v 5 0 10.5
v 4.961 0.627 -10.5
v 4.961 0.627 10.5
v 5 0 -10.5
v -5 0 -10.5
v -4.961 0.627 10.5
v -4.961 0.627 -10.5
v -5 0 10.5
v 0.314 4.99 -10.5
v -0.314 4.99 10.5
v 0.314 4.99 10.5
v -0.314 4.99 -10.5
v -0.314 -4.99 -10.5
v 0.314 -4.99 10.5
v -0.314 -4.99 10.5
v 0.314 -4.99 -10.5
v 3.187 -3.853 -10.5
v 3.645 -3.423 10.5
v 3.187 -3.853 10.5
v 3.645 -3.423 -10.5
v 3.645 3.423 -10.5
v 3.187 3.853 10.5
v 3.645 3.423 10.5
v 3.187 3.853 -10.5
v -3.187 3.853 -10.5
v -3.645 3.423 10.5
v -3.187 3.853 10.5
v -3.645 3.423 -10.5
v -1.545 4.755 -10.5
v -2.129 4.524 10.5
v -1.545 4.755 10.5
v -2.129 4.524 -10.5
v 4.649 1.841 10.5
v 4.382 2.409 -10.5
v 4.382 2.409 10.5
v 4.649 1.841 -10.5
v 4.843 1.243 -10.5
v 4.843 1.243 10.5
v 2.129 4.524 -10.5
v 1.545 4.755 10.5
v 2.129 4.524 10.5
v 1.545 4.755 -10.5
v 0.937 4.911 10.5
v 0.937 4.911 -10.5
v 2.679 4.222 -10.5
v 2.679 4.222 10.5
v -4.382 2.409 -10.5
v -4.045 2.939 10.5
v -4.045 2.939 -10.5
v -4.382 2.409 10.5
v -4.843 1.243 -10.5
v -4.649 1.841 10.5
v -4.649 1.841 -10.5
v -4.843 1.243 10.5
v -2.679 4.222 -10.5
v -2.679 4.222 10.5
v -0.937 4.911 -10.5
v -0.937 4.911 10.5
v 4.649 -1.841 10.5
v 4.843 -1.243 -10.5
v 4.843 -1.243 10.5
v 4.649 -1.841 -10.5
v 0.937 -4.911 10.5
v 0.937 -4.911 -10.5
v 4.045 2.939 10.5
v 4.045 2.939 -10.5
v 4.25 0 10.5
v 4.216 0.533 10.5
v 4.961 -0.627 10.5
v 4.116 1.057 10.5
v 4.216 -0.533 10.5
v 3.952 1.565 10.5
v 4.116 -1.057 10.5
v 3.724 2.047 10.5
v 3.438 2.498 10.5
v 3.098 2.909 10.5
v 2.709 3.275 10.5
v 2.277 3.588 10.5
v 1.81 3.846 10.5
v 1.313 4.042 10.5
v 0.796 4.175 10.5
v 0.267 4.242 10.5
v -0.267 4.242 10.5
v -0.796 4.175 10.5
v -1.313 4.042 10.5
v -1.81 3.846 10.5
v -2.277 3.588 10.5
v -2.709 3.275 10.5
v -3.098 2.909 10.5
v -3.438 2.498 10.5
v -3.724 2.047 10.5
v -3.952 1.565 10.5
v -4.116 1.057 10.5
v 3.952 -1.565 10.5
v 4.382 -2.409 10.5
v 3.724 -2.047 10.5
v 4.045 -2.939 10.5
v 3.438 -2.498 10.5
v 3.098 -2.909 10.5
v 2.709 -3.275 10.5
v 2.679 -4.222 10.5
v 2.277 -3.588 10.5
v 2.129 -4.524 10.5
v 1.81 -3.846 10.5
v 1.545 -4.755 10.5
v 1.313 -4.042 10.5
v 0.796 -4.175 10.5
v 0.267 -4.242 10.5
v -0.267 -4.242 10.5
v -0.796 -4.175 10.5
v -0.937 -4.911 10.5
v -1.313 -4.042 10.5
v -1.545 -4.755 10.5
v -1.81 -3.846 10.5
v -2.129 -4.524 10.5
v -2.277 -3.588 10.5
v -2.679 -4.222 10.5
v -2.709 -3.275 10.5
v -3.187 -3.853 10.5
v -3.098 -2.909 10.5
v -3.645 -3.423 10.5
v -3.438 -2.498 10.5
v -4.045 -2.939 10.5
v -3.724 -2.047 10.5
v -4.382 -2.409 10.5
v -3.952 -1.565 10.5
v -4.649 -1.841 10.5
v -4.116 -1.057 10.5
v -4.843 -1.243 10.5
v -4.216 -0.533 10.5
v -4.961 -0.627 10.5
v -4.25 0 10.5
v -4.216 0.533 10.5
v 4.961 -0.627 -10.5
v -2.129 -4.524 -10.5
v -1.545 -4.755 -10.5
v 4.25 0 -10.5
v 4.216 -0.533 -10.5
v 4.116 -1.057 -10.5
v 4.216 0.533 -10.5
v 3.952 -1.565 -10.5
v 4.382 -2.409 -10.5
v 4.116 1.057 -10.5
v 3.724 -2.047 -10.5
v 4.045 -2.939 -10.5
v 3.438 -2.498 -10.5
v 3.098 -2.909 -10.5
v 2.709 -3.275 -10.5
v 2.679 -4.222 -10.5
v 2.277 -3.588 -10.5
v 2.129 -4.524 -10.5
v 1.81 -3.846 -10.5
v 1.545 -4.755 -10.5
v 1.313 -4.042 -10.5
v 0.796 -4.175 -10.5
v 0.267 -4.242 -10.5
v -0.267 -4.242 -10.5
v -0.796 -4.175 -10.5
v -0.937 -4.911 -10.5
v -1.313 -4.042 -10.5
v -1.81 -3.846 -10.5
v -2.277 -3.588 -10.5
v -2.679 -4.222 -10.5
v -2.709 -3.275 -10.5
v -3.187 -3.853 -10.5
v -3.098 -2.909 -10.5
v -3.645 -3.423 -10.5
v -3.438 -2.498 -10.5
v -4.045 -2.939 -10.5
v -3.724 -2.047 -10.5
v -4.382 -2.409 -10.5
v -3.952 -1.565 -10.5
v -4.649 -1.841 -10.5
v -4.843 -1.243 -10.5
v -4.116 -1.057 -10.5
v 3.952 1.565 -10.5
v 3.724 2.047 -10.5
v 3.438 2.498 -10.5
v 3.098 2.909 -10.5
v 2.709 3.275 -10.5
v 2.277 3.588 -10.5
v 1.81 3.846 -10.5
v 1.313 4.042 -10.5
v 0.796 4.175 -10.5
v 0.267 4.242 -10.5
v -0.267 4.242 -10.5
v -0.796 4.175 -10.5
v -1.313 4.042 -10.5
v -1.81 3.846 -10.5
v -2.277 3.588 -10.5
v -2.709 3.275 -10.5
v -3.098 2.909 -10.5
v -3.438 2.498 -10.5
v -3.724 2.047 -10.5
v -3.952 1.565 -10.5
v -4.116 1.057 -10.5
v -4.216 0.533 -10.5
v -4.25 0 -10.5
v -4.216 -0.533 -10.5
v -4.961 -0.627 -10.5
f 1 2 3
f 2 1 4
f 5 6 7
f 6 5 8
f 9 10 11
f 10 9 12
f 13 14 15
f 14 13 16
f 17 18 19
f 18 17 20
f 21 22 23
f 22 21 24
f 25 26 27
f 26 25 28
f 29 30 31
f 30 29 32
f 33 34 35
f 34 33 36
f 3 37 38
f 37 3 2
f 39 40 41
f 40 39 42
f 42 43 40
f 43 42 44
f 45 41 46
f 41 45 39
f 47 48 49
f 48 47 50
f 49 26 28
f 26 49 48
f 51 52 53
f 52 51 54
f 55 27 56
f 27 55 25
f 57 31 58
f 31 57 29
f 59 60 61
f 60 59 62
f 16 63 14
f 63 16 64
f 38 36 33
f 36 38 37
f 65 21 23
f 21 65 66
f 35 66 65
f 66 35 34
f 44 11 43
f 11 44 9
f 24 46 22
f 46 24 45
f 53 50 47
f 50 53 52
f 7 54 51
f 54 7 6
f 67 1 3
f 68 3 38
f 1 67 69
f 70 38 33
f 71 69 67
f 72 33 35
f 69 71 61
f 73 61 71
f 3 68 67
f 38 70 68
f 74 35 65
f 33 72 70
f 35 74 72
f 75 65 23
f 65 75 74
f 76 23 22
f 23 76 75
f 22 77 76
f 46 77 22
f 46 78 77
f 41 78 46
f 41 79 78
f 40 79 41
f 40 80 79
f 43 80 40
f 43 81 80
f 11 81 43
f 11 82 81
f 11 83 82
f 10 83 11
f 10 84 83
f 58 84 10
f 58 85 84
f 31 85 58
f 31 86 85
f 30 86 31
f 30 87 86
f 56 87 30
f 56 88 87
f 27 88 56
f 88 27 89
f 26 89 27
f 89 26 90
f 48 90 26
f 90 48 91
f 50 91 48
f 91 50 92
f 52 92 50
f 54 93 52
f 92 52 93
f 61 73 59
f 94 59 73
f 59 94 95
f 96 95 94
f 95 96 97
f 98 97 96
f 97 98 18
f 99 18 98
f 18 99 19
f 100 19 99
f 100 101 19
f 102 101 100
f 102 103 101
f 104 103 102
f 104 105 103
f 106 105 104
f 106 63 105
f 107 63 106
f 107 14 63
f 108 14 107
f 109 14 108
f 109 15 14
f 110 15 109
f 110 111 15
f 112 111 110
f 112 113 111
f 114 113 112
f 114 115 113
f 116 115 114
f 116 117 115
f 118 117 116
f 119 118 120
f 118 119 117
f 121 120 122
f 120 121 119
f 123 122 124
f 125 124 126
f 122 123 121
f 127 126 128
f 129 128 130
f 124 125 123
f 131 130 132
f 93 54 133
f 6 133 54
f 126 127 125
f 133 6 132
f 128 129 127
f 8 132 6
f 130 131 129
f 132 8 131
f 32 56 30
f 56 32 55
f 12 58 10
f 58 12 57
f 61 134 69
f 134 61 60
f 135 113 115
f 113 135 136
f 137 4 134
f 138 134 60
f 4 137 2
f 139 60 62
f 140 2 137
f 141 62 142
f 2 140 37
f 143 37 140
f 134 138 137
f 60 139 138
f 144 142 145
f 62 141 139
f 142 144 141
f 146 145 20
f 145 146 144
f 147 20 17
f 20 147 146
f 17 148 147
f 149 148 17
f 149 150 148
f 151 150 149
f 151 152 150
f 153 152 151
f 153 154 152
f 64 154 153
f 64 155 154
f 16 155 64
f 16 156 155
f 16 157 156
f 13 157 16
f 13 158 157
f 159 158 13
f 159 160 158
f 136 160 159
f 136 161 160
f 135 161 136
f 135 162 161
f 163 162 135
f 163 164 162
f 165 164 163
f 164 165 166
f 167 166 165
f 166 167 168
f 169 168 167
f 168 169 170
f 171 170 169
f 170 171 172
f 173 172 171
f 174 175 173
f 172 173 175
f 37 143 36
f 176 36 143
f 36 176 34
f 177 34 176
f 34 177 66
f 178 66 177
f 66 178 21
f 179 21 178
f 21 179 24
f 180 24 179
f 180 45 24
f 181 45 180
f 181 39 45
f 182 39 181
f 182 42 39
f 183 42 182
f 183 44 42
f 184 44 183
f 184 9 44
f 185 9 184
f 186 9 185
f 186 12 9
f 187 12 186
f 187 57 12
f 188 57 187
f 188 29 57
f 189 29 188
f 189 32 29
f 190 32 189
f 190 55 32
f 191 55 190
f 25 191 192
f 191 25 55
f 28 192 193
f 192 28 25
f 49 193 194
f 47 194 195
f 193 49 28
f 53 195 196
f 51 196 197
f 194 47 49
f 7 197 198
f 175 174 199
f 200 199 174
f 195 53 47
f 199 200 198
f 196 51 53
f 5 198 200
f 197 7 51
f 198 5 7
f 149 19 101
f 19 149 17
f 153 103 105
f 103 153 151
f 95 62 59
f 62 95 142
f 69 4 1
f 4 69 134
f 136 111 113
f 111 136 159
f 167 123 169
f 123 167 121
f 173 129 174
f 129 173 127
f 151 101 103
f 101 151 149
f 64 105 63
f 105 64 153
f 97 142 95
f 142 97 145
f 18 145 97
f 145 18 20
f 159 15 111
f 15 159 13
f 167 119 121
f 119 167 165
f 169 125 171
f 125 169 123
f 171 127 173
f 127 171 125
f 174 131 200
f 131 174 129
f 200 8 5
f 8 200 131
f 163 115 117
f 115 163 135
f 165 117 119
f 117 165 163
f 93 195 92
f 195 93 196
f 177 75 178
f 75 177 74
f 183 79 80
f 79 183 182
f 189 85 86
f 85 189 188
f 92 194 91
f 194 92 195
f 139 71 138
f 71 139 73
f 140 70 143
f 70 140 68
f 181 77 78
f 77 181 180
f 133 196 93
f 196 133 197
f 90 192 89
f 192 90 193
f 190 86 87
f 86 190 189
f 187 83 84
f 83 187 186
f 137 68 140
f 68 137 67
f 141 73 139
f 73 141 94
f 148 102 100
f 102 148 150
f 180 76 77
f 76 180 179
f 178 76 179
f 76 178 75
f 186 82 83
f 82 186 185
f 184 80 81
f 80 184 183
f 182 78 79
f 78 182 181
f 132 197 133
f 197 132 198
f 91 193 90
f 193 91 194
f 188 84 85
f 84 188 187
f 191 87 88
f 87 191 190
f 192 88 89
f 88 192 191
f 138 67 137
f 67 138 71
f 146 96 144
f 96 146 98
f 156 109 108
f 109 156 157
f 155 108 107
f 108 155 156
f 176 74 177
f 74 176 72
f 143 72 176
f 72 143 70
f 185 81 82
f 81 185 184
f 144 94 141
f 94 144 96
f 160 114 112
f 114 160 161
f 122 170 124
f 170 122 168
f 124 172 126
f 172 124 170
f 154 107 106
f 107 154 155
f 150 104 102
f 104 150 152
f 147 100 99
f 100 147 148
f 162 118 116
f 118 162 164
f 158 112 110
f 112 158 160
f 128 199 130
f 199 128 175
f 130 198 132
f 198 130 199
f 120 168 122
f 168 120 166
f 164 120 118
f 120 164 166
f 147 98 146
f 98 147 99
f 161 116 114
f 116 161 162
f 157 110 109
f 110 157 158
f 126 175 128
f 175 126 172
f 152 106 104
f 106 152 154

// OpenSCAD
$fn = 50;


difference() {
	union() {
		translate(v = [0, 0, -10.5000000000]) {
			cylinder(h = 21, r = 5.0000000000);
		}
	}
	union() {
		translate(v = [0, 0, -100.0000000000]) {
			cylinder(h = 200, r = 4.2500000000);
		}
	}
}
